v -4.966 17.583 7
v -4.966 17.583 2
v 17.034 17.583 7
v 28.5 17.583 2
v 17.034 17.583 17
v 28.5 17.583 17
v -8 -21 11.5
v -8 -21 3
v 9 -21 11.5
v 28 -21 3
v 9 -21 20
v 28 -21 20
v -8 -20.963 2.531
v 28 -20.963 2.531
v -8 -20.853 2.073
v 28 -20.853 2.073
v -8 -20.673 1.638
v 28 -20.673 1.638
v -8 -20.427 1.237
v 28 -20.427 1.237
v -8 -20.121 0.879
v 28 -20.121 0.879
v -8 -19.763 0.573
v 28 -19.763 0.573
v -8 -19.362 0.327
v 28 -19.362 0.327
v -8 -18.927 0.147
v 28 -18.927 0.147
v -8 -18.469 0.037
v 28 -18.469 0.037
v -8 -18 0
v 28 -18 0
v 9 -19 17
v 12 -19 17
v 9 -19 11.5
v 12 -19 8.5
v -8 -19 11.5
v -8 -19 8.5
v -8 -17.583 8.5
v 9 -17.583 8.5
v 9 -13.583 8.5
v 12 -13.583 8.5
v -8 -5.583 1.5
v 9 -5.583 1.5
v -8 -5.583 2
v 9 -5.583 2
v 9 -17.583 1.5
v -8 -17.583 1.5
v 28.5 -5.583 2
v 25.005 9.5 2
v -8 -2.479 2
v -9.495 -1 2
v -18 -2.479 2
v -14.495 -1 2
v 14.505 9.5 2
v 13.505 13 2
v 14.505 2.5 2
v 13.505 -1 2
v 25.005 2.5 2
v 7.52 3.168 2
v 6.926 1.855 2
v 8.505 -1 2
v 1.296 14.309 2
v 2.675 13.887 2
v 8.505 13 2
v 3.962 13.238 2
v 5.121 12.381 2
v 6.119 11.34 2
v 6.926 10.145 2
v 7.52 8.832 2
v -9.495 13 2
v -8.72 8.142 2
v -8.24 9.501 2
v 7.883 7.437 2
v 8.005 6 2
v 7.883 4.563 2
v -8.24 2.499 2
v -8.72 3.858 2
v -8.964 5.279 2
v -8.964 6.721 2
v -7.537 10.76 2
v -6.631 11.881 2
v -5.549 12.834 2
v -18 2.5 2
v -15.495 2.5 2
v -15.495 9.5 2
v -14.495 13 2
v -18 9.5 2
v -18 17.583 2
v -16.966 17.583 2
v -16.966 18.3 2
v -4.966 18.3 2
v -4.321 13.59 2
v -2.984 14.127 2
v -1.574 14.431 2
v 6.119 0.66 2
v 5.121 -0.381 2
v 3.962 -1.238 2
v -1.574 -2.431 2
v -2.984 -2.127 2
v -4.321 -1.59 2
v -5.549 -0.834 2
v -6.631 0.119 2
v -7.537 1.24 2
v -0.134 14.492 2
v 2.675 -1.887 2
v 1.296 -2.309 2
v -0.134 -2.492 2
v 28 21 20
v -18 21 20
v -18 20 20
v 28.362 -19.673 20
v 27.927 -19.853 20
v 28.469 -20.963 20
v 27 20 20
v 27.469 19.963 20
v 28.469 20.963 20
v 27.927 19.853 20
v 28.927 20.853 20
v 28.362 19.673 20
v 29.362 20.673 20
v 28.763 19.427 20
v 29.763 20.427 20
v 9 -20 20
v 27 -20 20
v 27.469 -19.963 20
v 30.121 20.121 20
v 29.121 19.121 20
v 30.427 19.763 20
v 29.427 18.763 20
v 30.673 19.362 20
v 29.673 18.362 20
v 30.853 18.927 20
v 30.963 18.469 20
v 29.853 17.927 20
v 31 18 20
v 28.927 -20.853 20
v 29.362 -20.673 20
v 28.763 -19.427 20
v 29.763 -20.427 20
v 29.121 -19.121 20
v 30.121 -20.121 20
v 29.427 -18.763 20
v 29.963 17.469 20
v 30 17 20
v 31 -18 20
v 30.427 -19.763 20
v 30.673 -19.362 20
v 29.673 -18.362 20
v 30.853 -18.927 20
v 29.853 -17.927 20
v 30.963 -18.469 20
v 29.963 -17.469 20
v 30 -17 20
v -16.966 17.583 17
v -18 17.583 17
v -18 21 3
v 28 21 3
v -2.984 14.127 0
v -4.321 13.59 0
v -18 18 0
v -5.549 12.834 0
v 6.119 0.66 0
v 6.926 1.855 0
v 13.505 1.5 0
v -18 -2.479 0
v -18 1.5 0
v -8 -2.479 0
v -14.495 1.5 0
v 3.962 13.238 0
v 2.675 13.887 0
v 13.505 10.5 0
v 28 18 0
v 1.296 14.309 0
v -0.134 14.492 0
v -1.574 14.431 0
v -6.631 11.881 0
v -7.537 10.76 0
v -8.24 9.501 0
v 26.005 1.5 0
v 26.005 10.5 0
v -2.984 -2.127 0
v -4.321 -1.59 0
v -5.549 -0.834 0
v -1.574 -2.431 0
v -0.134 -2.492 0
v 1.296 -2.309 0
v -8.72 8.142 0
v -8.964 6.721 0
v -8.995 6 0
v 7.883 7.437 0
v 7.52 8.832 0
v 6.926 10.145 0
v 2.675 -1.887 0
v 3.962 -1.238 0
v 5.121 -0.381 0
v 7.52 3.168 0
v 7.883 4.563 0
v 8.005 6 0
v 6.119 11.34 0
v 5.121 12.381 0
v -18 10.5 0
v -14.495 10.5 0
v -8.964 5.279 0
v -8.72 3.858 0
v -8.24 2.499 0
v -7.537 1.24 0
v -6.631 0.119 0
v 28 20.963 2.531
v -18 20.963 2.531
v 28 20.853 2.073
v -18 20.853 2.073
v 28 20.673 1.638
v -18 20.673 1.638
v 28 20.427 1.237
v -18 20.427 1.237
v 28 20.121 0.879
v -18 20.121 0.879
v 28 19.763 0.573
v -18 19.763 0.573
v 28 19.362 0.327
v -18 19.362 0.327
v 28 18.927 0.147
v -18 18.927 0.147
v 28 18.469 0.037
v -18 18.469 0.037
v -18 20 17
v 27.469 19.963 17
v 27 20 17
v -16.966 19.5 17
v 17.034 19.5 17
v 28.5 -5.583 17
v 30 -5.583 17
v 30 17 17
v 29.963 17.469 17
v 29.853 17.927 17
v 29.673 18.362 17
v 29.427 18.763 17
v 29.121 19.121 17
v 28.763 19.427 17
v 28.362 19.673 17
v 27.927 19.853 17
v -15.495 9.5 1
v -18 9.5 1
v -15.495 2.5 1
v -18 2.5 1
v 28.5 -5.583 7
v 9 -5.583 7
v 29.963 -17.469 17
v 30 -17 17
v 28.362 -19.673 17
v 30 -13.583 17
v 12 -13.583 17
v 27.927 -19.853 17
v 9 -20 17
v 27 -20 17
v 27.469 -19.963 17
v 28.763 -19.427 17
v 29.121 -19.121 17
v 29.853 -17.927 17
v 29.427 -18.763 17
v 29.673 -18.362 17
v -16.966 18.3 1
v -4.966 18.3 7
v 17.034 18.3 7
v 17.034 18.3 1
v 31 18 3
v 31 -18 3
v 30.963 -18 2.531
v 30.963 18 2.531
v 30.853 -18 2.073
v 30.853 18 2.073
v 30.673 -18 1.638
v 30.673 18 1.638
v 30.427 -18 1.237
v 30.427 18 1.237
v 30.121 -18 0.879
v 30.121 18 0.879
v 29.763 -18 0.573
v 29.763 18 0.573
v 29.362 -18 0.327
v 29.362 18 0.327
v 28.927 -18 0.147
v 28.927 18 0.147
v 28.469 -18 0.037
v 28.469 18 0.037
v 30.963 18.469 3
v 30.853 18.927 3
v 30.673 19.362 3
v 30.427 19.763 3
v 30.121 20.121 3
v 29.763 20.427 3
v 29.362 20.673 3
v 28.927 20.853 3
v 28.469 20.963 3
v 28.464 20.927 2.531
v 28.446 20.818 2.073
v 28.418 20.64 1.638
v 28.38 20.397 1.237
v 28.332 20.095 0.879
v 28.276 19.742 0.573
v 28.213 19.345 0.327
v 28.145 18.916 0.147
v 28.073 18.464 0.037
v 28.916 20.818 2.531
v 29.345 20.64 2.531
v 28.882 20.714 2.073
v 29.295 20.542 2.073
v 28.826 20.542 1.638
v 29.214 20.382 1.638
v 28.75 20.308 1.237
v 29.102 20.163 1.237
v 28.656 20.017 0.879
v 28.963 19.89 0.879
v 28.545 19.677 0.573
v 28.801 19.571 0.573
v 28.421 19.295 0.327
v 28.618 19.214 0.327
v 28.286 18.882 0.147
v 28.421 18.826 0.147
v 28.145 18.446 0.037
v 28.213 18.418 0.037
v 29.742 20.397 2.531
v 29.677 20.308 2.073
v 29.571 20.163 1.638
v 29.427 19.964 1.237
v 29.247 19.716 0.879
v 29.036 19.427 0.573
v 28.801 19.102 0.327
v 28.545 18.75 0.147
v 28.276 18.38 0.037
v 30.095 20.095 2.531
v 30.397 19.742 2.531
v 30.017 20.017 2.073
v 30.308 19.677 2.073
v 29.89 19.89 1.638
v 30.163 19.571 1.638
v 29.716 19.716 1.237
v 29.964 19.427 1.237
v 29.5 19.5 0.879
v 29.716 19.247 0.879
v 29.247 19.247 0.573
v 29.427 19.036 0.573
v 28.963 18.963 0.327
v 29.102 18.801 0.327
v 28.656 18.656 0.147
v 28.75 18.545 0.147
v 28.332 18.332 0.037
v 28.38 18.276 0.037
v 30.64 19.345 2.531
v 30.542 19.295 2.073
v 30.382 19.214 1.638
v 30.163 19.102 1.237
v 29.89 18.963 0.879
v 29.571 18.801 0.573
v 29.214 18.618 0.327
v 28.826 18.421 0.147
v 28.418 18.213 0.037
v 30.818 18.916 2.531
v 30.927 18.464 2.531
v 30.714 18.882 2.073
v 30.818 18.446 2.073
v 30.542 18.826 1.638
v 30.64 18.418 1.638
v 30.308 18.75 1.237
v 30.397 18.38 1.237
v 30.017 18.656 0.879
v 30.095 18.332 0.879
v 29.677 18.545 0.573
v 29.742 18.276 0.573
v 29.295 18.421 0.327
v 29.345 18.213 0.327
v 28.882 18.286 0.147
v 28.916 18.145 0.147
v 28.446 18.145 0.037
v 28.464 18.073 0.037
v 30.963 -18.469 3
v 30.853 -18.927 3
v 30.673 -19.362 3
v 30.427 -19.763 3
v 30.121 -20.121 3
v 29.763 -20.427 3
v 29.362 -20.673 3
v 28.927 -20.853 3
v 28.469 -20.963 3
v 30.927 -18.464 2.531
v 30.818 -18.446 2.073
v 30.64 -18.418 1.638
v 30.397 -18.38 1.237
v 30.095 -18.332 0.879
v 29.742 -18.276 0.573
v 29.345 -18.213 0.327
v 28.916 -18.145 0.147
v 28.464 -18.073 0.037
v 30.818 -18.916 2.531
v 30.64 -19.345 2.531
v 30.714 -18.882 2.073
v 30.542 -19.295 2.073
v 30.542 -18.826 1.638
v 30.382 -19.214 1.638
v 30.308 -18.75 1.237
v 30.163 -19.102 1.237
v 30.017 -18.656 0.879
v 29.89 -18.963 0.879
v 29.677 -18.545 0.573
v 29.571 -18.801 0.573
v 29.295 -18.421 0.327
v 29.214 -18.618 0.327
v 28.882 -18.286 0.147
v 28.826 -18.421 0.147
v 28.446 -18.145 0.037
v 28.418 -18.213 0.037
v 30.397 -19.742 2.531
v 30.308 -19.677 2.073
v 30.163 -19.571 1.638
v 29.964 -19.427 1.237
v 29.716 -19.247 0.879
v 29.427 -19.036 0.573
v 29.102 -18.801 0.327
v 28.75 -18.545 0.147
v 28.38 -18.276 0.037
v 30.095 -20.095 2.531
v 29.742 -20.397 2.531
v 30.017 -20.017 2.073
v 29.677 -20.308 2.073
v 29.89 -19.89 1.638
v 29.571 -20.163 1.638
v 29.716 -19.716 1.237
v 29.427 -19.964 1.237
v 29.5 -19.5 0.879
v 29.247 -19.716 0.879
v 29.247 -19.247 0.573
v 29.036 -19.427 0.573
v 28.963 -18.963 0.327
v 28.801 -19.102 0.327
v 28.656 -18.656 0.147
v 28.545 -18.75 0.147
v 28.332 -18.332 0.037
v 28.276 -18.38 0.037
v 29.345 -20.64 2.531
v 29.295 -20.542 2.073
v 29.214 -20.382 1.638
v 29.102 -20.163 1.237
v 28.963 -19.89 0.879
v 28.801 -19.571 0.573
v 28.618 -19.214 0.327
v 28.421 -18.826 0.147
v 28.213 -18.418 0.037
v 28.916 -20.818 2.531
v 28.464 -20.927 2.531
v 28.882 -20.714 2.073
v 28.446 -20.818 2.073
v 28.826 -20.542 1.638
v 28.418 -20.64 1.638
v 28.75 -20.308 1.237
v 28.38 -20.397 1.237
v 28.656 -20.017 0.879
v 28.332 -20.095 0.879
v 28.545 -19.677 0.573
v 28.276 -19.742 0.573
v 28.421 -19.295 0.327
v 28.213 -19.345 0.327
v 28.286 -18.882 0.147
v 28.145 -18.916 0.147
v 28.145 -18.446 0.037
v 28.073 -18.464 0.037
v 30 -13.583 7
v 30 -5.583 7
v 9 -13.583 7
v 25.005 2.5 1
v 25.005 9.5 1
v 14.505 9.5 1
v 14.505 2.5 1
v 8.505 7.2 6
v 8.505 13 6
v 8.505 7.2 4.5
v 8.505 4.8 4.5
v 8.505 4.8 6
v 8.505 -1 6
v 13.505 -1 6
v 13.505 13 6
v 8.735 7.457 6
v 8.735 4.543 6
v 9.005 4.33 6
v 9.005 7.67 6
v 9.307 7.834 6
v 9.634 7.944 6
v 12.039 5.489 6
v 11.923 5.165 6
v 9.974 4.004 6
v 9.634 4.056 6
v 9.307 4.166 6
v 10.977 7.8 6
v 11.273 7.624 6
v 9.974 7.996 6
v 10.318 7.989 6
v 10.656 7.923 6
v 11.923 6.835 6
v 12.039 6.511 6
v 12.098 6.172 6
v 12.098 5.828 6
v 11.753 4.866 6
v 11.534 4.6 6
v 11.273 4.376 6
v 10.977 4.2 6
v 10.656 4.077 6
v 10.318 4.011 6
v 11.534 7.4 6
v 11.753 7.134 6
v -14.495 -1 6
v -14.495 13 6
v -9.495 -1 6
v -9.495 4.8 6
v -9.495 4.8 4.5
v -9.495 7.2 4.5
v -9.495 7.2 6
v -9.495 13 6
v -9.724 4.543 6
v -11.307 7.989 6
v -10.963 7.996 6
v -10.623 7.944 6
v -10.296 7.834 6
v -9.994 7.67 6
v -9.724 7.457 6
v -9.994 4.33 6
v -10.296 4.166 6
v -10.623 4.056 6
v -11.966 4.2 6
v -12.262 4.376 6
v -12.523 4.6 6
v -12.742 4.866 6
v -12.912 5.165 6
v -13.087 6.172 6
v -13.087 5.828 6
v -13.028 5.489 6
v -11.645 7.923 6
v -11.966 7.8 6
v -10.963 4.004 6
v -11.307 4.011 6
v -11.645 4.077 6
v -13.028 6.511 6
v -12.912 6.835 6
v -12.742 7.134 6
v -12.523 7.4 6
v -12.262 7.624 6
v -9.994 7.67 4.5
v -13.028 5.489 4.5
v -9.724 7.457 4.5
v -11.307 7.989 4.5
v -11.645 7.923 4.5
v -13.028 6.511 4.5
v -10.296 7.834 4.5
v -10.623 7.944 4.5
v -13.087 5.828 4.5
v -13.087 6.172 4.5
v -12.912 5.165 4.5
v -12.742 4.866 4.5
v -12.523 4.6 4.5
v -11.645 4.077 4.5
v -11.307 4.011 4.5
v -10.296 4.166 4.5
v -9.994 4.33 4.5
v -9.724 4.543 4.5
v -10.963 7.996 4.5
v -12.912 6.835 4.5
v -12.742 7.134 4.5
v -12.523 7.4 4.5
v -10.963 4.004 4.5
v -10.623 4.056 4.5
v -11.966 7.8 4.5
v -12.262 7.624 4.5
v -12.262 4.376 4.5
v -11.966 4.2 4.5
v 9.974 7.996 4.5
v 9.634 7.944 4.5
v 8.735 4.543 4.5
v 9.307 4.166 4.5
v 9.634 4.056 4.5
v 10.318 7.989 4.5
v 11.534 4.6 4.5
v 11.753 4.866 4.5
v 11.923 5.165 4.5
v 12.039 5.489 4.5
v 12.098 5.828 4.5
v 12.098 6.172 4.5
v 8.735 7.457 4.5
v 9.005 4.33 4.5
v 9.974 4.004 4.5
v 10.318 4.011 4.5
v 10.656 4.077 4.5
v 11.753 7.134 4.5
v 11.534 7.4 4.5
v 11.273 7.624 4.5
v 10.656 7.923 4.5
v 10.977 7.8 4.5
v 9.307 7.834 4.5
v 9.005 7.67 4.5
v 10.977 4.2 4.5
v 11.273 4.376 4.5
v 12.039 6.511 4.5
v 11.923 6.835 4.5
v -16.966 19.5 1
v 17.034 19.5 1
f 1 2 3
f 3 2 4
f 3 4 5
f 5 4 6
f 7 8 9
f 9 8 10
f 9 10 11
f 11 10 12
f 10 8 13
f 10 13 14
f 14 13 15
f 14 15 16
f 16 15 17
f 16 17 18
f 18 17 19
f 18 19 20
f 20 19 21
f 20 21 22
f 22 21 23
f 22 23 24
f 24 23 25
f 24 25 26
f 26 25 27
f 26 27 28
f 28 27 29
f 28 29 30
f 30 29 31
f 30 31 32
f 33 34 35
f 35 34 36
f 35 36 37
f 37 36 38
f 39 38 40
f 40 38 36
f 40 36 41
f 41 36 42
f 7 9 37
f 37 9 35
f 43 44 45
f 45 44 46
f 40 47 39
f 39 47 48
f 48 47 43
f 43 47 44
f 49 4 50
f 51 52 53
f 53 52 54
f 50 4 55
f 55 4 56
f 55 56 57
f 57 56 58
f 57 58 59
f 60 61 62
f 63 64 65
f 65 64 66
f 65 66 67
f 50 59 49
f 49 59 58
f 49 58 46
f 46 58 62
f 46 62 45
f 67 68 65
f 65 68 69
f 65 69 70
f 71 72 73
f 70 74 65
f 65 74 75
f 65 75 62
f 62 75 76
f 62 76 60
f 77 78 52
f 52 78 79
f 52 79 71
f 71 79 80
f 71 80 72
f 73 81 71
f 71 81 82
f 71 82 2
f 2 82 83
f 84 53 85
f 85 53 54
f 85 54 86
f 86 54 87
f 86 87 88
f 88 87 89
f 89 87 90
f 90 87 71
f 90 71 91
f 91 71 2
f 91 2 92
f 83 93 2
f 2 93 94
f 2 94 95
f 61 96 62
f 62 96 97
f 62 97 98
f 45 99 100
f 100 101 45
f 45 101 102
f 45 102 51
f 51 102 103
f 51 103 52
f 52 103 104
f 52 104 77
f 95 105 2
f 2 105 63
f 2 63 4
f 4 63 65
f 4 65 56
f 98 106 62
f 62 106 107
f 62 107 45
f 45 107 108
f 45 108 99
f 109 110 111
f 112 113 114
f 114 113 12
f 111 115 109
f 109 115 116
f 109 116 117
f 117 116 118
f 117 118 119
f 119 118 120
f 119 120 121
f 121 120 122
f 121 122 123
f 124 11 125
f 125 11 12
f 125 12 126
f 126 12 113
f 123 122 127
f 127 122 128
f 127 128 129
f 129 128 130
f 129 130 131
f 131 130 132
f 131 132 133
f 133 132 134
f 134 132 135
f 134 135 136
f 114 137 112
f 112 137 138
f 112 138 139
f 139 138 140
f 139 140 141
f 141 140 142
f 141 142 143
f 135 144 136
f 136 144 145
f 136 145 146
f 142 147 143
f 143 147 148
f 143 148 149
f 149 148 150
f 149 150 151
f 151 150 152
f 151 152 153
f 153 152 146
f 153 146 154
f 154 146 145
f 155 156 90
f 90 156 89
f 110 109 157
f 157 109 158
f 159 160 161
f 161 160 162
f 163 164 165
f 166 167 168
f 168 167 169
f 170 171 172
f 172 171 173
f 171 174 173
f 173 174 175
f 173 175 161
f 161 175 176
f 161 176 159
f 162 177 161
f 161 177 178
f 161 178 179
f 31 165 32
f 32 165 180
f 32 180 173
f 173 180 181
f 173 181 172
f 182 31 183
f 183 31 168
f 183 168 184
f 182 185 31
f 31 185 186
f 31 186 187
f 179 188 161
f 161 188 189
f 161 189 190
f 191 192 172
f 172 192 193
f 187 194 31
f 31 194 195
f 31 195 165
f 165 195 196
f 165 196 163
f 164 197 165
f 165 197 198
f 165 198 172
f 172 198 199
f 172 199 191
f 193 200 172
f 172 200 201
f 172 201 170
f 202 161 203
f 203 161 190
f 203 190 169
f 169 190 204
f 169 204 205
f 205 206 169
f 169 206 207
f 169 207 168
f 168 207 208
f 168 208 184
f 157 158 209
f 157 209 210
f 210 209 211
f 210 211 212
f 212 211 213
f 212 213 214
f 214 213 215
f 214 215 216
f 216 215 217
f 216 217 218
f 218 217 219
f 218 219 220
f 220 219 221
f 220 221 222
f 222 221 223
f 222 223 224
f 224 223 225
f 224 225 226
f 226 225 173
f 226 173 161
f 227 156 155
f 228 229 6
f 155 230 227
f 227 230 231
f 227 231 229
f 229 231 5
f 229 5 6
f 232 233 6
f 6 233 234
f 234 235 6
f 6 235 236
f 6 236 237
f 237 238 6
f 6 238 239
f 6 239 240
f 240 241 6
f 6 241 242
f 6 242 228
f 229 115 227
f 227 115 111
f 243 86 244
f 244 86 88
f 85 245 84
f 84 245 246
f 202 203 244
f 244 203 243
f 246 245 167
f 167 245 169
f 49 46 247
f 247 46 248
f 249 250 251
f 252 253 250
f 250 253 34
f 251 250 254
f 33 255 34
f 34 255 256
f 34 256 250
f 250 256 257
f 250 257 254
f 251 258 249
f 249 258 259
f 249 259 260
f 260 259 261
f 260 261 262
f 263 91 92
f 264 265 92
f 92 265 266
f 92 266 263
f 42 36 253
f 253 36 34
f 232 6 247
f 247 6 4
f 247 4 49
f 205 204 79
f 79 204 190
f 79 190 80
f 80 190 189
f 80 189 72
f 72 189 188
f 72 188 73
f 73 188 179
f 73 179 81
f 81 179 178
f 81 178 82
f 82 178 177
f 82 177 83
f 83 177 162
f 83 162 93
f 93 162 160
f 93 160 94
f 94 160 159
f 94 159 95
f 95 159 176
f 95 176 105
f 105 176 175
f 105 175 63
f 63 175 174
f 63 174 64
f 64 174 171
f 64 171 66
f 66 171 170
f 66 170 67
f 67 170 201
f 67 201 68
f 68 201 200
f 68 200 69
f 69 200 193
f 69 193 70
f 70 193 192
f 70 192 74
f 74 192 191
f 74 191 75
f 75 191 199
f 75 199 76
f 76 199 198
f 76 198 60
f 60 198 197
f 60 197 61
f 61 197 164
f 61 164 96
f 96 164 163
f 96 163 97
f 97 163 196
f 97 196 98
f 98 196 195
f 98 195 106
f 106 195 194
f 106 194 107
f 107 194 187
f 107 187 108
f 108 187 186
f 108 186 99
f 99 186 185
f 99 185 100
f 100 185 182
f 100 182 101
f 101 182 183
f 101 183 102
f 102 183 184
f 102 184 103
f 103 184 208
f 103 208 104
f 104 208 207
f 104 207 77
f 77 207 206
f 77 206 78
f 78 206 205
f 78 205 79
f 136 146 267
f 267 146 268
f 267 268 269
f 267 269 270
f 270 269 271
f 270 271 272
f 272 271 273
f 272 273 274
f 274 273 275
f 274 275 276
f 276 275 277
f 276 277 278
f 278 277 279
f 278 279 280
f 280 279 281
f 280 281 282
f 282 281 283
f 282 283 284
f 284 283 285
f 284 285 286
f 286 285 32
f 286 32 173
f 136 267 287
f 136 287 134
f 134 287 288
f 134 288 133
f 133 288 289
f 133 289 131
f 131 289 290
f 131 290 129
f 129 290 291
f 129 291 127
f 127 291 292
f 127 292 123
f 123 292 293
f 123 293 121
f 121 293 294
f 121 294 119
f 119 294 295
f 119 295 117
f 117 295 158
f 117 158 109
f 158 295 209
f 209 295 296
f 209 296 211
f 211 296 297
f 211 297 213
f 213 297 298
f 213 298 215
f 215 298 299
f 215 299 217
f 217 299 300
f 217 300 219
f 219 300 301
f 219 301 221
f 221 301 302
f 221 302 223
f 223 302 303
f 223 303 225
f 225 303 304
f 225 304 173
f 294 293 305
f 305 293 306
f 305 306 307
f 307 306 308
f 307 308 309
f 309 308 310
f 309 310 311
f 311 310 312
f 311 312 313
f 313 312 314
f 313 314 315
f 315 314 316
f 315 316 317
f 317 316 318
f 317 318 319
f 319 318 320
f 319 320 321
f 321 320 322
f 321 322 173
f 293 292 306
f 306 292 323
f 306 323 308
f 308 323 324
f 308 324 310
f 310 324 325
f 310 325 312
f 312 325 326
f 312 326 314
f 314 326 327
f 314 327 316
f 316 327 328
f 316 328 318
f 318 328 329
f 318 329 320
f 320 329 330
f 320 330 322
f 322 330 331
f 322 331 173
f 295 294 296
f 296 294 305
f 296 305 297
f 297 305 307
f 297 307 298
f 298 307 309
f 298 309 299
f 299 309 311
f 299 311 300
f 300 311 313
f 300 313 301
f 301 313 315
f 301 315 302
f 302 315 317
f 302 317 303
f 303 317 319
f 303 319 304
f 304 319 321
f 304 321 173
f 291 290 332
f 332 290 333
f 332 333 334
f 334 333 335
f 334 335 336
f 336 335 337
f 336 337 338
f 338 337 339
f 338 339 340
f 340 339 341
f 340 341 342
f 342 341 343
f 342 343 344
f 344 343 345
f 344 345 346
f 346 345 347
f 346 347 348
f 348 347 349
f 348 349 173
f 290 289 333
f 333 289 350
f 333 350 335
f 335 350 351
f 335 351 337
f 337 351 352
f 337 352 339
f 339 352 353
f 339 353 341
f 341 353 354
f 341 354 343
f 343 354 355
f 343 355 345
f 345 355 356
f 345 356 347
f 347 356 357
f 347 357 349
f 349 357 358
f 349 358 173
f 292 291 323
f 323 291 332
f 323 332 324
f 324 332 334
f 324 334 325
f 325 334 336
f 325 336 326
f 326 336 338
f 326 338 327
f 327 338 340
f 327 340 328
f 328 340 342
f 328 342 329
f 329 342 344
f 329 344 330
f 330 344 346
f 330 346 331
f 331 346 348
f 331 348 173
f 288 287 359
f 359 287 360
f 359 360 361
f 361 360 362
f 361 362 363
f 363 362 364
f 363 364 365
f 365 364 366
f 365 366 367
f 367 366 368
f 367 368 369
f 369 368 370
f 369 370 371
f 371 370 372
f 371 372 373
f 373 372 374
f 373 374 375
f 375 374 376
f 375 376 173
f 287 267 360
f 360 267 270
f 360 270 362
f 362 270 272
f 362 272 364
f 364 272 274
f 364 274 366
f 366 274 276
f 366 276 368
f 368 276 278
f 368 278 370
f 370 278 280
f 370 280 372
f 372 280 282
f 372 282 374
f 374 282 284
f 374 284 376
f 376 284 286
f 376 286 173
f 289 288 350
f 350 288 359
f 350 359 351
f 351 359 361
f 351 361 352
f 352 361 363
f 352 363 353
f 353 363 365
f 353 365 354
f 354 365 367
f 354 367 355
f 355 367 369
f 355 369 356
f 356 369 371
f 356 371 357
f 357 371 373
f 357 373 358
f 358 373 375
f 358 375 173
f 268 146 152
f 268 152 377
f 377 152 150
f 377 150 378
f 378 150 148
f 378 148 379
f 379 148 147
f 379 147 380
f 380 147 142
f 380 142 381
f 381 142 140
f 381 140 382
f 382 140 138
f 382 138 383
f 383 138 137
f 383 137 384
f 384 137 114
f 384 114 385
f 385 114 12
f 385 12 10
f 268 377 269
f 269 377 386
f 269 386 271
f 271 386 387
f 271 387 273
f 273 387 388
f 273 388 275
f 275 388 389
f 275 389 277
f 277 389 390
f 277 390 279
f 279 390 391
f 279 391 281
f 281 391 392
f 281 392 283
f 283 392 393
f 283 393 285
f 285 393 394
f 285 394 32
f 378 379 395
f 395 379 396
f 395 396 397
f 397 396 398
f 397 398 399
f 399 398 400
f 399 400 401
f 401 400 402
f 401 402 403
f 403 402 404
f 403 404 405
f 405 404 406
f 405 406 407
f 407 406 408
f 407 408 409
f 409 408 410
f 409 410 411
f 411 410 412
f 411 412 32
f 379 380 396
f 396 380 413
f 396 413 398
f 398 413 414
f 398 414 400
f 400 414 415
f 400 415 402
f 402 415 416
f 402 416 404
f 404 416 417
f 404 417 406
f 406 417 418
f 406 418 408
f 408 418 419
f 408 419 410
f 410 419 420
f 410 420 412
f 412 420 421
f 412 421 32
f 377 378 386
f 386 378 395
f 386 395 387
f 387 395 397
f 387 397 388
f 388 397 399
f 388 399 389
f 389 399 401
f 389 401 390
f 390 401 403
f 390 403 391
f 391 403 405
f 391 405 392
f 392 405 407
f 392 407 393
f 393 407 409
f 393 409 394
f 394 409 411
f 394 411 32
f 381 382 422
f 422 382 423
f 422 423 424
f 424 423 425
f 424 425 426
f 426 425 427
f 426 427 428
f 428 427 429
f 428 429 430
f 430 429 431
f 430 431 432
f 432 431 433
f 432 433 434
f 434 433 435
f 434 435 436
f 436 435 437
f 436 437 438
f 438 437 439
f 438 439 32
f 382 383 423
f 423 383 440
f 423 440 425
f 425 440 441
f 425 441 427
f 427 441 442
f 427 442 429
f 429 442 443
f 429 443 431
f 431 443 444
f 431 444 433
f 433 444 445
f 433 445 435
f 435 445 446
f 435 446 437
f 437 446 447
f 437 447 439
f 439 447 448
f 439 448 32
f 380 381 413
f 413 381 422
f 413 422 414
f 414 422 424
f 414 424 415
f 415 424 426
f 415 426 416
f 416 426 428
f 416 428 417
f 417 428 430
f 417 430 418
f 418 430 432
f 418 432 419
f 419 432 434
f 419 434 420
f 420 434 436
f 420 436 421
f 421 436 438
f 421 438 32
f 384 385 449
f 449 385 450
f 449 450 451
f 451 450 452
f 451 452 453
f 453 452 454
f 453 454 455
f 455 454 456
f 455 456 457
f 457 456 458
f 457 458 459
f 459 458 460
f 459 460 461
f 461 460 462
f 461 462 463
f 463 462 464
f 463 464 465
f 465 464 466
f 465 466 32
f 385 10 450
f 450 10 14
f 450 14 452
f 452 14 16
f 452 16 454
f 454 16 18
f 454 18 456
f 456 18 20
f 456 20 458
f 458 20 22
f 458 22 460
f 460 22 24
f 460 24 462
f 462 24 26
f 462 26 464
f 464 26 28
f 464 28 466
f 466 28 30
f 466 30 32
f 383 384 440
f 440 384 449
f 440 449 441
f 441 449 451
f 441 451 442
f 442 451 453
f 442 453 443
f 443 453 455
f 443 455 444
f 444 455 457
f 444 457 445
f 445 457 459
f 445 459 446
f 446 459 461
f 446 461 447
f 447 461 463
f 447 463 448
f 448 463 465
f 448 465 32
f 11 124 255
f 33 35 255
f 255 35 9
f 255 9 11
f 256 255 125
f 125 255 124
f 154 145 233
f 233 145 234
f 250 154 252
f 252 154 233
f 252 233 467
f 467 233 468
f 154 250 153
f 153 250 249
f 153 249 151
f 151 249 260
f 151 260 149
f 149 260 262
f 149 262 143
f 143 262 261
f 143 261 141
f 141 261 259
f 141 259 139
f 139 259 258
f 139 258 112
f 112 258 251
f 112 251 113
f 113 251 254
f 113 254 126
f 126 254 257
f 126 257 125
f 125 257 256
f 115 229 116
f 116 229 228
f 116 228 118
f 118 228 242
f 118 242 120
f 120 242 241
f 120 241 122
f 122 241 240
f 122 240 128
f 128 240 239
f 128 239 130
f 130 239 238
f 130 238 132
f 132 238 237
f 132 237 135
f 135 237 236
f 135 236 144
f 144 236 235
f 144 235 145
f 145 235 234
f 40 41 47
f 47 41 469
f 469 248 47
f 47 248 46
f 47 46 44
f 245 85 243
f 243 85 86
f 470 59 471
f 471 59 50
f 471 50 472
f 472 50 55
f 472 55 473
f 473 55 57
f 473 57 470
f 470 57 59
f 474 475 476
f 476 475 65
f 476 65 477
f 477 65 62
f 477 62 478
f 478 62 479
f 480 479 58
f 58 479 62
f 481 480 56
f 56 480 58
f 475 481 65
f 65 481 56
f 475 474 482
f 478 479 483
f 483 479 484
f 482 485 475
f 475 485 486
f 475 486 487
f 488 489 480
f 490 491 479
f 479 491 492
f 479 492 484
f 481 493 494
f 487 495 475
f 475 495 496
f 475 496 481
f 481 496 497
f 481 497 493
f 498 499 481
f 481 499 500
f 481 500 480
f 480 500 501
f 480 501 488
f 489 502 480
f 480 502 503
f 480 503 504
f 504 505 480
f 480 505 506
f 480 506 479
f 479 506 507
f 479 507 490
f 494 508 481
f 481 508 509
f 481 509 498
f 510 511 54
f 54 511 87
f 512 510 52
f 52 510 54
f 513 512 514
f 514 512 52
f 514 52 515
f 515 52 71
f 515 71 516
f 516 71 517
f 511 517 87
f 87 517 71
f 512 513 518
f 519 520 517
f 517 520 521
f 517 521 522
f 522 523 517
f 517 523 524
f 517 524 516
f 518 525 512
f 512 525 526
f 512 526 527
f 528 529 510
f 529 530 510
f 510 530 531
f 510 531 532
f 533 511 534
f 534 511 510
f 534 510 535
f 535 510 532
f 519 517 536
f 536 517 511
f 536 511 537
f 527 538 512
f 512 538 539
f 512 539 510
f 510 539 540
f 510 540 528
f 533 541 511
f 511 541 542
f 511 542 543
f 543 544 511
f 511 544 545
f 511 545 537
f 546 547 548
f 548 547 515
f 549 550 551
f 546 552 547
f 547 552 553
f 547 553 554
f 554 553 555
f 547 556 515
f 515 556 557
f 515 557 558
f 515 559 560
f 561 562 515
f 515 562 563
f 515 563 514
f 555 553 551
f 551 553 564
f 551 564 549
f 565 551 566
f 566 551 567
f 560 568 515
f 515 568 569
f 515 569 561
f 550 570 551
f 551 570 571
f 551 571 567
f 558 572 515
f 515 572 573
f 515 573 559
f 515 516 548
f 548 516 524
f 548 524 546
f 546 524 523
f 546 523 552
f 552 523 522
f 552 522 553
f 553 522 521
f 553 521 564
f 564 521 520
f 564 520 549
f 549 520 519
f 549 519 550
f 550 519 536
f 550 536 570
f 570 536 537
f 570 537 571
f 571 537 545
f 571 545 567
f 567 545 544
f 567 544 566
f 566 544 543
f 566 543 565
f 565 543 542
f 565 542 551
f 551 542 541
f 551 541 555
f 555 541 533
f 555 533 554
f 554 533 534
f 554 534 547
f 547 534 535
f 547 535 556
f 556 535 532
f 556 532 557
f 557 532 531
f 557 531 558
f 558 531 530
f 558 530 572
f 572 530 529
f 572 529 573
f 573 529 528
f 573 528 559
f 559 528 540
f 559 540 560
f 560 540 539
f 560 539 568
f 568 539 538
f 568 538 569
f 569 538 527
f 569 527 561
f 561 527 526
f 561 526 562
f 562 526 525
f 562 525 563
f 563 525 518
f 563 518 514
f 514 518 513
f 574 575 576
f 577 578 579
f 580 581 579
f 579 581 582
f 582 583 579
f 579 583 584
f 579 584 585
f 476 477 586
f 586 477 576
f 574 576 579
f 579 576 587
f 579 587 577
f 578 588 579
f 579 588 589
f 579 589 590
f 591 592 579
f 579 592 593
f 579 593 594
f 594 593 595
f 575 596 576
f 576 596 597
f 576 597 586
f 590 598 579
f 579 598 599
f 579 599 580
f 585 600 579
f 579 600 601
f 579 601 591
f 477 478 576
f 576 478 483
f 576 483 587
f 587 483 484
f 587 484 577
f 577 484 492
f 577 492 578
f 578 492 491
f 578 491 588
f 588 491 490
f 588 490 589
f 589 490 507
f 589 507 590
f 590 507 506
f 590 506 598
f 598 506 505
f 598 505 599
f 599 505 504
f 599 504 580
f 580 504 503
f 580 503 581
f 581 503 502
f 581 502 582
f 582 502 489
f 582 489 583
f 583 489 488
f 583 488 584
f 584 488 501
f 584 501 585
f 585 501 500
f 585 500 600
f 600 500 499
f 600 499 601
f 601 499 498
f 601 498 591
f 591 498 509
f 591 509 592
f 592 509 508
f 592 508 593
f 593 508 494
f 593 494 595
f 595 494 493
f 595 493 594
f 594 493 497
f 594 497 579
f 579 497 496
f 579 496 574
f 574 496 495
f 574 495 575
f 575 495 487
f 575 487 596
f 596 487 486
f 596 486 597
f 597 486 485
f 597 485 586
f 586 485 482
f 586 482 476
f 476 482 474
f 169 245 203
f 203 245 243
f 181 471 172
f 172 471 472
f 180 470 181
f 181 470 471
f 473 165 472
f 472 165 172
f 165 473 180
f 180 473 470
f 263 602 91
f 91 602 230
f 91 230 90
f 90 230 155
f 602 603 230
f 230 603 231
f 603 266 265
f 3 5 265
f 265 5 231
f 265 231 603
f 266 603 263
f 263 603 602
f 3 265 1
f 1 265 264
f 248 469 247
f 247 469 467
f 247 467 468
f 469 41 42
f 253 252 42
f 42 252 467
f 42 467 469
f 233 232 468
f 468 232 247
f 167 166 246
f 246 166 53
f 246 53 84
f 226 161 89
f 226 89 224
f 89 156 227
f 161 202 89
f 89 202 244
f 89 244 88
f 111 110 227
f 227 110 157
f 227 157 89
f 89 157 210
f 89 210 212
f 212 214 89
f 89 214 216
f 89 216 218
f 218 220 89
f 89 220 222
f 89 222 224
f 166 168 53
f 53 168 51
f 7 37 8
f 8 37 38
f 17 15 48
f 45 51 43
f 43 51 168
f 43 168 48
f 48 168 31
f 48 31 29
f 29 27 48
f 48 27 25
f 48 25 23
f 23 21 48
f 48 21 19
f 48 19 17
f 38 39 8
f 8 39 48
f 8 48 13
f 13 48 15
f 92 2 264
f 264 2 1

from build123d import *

# Parameters (mm, degrees)
SKETCH1_W           = 62
SKETCH1_H           = 42
BOSS_EXTRUDE1_DEPTH = 20
SKETCH8_W           = 24
SKETCH8_H           = 38
CUT_EXTRUDE1_DEPTH  = 11.5
CUT_EXTRUDE2_REACH  = 41.17
SKETCH9_R           = 8.5
SKETCH10_W          = 57
SKETCH10_H          = 23.165977038
CUT_EXTRUDE3_DEPTH  = 18
FILLET1_R           = 3
FILLET2_R           = 3
SKETCH11_W          = 18
SKETCH11_H          = 8
CUT_EXTRUDE4_DEPTH  = 8.5
SKETCH12_W          = 60
SKETCH12_H          = 40
CUT_EXTRUDE5_DEPTH  = 3
FILLET3_R           = 3
SKETCH13_W          = 18
SKETCH13_H          = 12
CUT_EXTRUDE6_DEPTH  = 7
CUT_EXTRUDE10_REACH = 44.45
SKETCH18_W          = 10.5
SKETCH18_H          = 7
SKETCH22_W          = 5
SKETCH22_H          = 14
BOSS_EXTRUDE2_DEPTH = 4
SKETCH16_R          = 2
CUT_EXTRUDE9_DEPTH  = 1.5
CHAMFER1_SIZE       = 1
SKETCH19_W          = 34
SKETCH19_H          = 1.2
CUT_EXTRUDE11_DEPTH = 16
SKETCH20_W          = 34
SKETCH20_H          = 0.717011481
CUT_EXTRUDE12_DEPTH = 10
SKETCH21_W          = 60
SKETCH21_H          = 8
CUT_EXTRUDE13_DEPTH = 10
SKETCH14_W          = 24.0014575
SKETCH14_H          = 44.120551562
CUT_EXTRUDE7_DEPTH  = 13
SKETCH15_W          = 25.642620831
SKETCH15_H          = 19.236744125
CUT_EXTRUDE8_DEPTH  = 10
SKETCH23_W          = 12
SKETCH23_H          = 0.717011481
CUT_EXTRUDE14_DEPTH = 5


with BuildPart() as part:
    # Sketch1 → Boss-Extrude1 (new body)
    with BuildSketch(Plane.XY):
        Rectangle(SKETCH1_W, SKETCH1_H)
    extrude(amount=BOSS_EXTRUDE1_DEPTH)

    # Sketch8 → Cut-Extrude1 (cut)
    with BuildSketch(Plane.XY.offset(20)):
        Rectangle(SKETCH8_W, SKETCH8_H)
    extrude(amount=-CUT_EXTRUDE1_DEPTH, mode=Mode.SUBTRACT)

    # Sketch9 → Cut-Extrude2 (cut, up to next)
    with BuildSketch(Plane.XY.offset(8.5), mode=Mode.PRIVATE) as cut_extrude2_sk1:
        with Locations((-0.494531145, 6)):
            Circle(SKETCH9_R)
    cut_extrude2_tool1 = extrude(cut_extrude2_sk1.sketch, amount=-CUT_EXTRUDE2_REACH, mode=Mode.PRIVATE) & part.part
    add(cut_extrude2_tool1.solids().sort_by_distance((-0.494531, 6, 8.5))[0], mode=Mode.SUBTRACT)

    # Sketch10 → Cut-Extrude3 (cut)
    with BuildSketch(Plane.XY.offset(20)):
        with Locations((0, 6)):
            Rectangle(SKETCH10_W, SKETCH10_H)
    extrude(amount=-CUT_EXTRUDE3_DEPTH, mode=Mode.SUBTRACT)

    # Fillet1
    fillet1_edges = [part.edges().sort_by_distance(p)[0] for p in [
        (-31, 0, 0),
        (0, -21, 0),
        (31, 0, 0),
        (0, 21, 0),
    ]]
    fillet(fillet1_edges, radius=FILLET1_R)

    # Fillet2
    # the kernel refuses this fillet: 3 mm, written as the material it takes off along each edge
    with BuildSketch(Plane(origin=(-28, 18, 3), x_dir=(-1, 0, 0), z_dir=(0, 1, 0))) as fillet2_piece_1_section:
        Polygon((0, 0), (FILLET2_R, 0), (FILLET2_R, -FILLET2_R), (0, -FILLET2_R), align=None)
    fillet2_piece_1 = extrude(amount=FILLET2_R, mode=Mode.PRIVATE)
    fillet2_piece_1 = fillet2_piece_1 - Plane(origin=(-28, 18, 3), x_dir=(0.7071067811865475, 0, 0.7071067811865475), z_dir=(0, 1, 0)) * Sphere(FILLET2_R, mode=Mode.PRIVATE)
    add(fillet2_piece_1, mode=Mode.SUBTRACT)
    with BuildSketch(Plane(origin=(-28, -18, 3), x_dir=(0, -1, 0), z_dir=(-1, 0, 0))) as fillet2_piece_2_section:
        Polygon((0, 0), (FILLET2_R, 0), (FILLET2_R, -FILLET2_R), (0, -FILLET2_R), align=None)
    fillet2_piece_2 = extrude(amount=FILLET2_R, mode=Mode.PRIVATE)
    fillet2_piece_2 = fillet2_piece_2 - Plane(origin=(-28, -18, 3), x_dir=(0, 0.7071067811865475, 0.7071067811865475), z_dir=(-1, 0, 0)) * Sphere(FILLET2_R, mode=Mode.PRIVATE)
    add(fillet2_piece_2, mode=Mode.SUBTRACT)
    with BuildSketch(Plane(origin=(28, 18, 3), x_dir=(1, 0, 0), z_dir=(0, 1, 0))) as fillet2_piece_3_section:
        Polygon((0, 0), (FILLET2_R, 0), (FILLET2_R, FILLET2_R), (0, FILLET2_R), align=None)
    fillet2_piece_3 = extrude(amount=FILLET2_R, mode=Mode.PRIVATE)
    fillet2_piece_3 = fillet2_piece_3 - Plane(origin=(28, 18, 3), x_dir=(-0.7071067811865475, 0, 0.7071067811865475), z_dir=(0, 1, 0)) * Sphere(FILLET2_R, mode=Mode.PRIVATE)
    add(fillet2_piece_3, mode=Mode.SUBTRACT)
    with BuildSketch(Plane(origin=(28, -18, 3), x_dir=(0, -1, 0), z_dir=(1, 0, 0))) as fillet2_piece_4_section:
        Polygon((0, 0), (FILLET2_R, 0), (FILLET2_R, FILLET2_R), (0, FILLET2_R), align=None)
    fillet2_piece_4 = extrude(amount=FILLET2_R, mode=Mode.PRIVATE)
    fillet2_piece_4 = fillet2_piece_4 - Plane(origin=(28, -18, 3), x_dir=(0, 0.7071067811865475, 0.7071067811865475), z_dir=(1, 0, 0)) * Sphere(FILLET2_R, mode=Mode.PRIVATE)
    add(fillet2_piece_4, mode=Mode.SUBTRACT)
    with BuildSketch(Plane(origin=(-31, 21, 3), x_dir=(1, 0, 0), z_dir=(0, 0, 1)), Plane(origin=(-31, -21, 3), x_dir=(0, 1, 0), z_dir=(0, 0, 1))) as fillet2_piece_5:
        with BuildLine():
            CenterArc((FILLET2_R, -FILLET2_R), FILLET2_R, 90, 90)
            Line((0, -FILLET2_R), (0, 0))
            Line((0, 0), (FILLET2_R, 0))
        make_face()
    extrude(amount=24.5, mode=Mode.SUBTRACT)
    with BuildSketch(Plane(origin=(31, -21, 3), x_dir=(0, 1, 0), z_dir=(0, 0, 1)), Plane(origin=(31, 21, 3), x_dir=(-1, 0, 0), z_dir=(0, 0, 1))) as fillet2_piece_6:
        with BuildLine():
            CenterArc((FILLET2_R, FILLET2_R), FILLET2_R, 180, 90)
            Line((0, FILLET2_R), (0, 0))
            Line((0, 0), (FILLET2_R, 0))
        make_face()
    extrude(amount=24.5, mode=Mode.SUBTRACT)

    # Sketch11 → Cut-Extrude4 (cut)
    with BuildSketch(Plane.XY.offset(20)):
        with Locations((0, -17)):
            Rectangle(SKETCH11_W, SKETCH11_H)
    extrude(amount=-CUT_EXTRUDE4_DEPTH, mode=Mode.SUBTRACT)

    # Sketch12 → Cut-Extrude5 (cut)
    with BuildSketch(Plane.XY.offset(20)):
        Rectangle(SKETCH12_W, SKETCH12_H)
    extrude(amount=-CUT_EXTRUDE5_DEPTH, mode=Mode.SUBTRACT)

    # Fillet3
    fillet3_edges = [part.edges().sort_by_distance(p)[0] for p in [
        (30, -20, 18.5),
        (-30, -20, 18.5),
        (-30, 20, 18.5),
        (30, 20, 18.5),
    ]]
    fillet(fillet3_edges, radius=FILLET3_R)

    # Sketch13 → Cut-Extrude6 (cut)
    with BuildSketch(Plane.XY.offset(8.5)):
        with Locations((0, -11.582988519)):
            Rectangle(SKETCH13_W, SKETCH13_H)
    extrude(amount=-CUT_EXTRUDE6_DEPTH, mode=Mode.SUBTRACT)

    # Sketch18 → Cut-Extrude10 (cut, up to next)
    with BuildSketch(Plane(origin=(0, 0, 0), x_dir=(-1, 0, 0), z_dir=(0, 0, -1)), mode=Mode.PRIVATE) as cut_extrude10_sk1:
        with Locations((-19.755468855, 6)):
            Rectangle(SKETCH18_W, SKETCH18_H)
    cut_extrude10_tool1 = extrude(cut_extrude10_sk1.sketch, amount=-CUT_EXTRUDE10_REACH, mode=Mode.PRIVATE) & part.part
    # Sketch18 → Cut-Extrude10 (cut, up to next)
    with BuildSketch(Plane(origin=(0, 0, 0), x_dir=(-1, 0, 0), z_dir=(0, 0, -1)), mode=Mode.PRIVATE) as cut_extrude10_sk2:
        with Locations((20.744531145, 6)):
            Rectangle(SKETCH18_W, SKETCH18_H)
    cut_extrude10_tool2 = extrude(cut_extrude10_sk2.sketch, amount=-CUT_EXTRUDE10_REACH, mode=Mode.PRIVATE) & part.part
    add(cut_extrude10_tool1.solids().sort_by_distance((19.755469, 6, 0))[0], mode=Mode.SUBTRACT)
    add(cut_extrude10_tool2.solids().sort_by_distance((-20.744531, 6, 0))[0], mode=Mode.SUBTRACT)

    # Sketch22 → Boss-Extrude2 (add)
    with BuildSketch(Plane.XY.offset(2)):
        with Locations((-11.994531145, 6)):
            Rectangle(SKETCH22_W, SKETCH22_H)
        with Locations((11.005468855, 6)):
            Rectangle(SKETCH22_W, SKETCH22_H)
    extrude(amount=BOSS_EXTRUDE2_DEPTH)

    # Sketch16 → Cut-Extrude9 (cut)
    with BuildSketch(Plane.XY.offset(6)):
        with Locations((-11.094531145, 6)):
            Circle(SKETCH16_R)
        with Locations((10.105468855, 6)):
            Circle(SKETCH16_R)
    extrude(amount=-CUT_EXTRUDE9_DEPTH, mode=Mode.SUBTRACT)

    # Chamfer1
    chamfer1_edges = [part.edges().sort_by_distance(p)[0] for p in [
        (25.005468855, 6, 0),
        (19.755468855, 2.5, 0),
        (14.505468855, 6, 0),
        (19.755468855, 9.5, 0),
        (-15.494531145, 6, 0),
        (-20.744531145, 2.5, 0),
        (-25.994531145, 6, 0),
        (-20.744531145, 9.5, 0),
    ]]
    chamfer(chamfer1_edges, length=CHAMFER1_SIZE)

    # Sketch19 → Cut-Extrude11 (cut)
    with BuildSketch(Plane.XY.offset(17)):
        with Locations((0.034121004, 18.9)):
            Rectangle(SKETCH19_W, SKETCH19_H)
    extrude(amount=-CUT_EXTRUDE11_DEPTH, mode=Mode.SUBTRACT)

    # Sketch20 → Cut-Extrude12 (cut)
    with BuildSketch(Plane.XY.offset(17)):
        with Locations((0.034121004, 17.94149426)):
            Rectangle(SKETCH20_W, SKETCH20_H)
    extrude(amount=-CUT_EXTRUDE12_DEPTH, mode=Mode.SUBTRACT)

    # Sketch21 → Cut-Extrude13 (cut)
    with BuildSketch(Plane.XY.offset(17)):
        with Locations((0, -9.582988519)):
            Rectangle(SKETCH21_W, SKETCH21_H)
    extrude(amount=-CUT_EXTRUDE13_DEPTH, mode=Mode.SUBTRACT)

    # Sketch14 → Cut-Extrude7 (cut)
    with BuildSketch(Plane.ZY.offset(31)):
        with Locations((10.285512598, -0.436155296)):
            Rectangle(SKETCH14_W, SKETCH14_H)
    extrude(amount=-CUT_EXTRUDE7_DEPTH, mode=Mode.SUBTRACT)

    # Sketch15 → Cut-Extrude8 (cut)
    with BuildSketch(Plane.ZY.offset(18)):
        with Locations((10.646983425, -12.09757059)):
            Rectangle(SKETCH15_W, SKETCH15_H)
    extrude(amount=-CUT_EXTRUDE8_DEPTH, mode=Mode.SUBTRACT)

    # Sketch23 → Cut-Extrude14 (cut)
    with BuildSketch(Plane.XY.offset(7)):
        with Locations((-10.965878996, 17.94149426)):
            Rectangle(SKETCH23_W, SKETCH23_H)
    extrude(amount=-CUT_EXTRUDE14_DEPTH, mode=Mode.SUBTRACT)


solid = part.part
